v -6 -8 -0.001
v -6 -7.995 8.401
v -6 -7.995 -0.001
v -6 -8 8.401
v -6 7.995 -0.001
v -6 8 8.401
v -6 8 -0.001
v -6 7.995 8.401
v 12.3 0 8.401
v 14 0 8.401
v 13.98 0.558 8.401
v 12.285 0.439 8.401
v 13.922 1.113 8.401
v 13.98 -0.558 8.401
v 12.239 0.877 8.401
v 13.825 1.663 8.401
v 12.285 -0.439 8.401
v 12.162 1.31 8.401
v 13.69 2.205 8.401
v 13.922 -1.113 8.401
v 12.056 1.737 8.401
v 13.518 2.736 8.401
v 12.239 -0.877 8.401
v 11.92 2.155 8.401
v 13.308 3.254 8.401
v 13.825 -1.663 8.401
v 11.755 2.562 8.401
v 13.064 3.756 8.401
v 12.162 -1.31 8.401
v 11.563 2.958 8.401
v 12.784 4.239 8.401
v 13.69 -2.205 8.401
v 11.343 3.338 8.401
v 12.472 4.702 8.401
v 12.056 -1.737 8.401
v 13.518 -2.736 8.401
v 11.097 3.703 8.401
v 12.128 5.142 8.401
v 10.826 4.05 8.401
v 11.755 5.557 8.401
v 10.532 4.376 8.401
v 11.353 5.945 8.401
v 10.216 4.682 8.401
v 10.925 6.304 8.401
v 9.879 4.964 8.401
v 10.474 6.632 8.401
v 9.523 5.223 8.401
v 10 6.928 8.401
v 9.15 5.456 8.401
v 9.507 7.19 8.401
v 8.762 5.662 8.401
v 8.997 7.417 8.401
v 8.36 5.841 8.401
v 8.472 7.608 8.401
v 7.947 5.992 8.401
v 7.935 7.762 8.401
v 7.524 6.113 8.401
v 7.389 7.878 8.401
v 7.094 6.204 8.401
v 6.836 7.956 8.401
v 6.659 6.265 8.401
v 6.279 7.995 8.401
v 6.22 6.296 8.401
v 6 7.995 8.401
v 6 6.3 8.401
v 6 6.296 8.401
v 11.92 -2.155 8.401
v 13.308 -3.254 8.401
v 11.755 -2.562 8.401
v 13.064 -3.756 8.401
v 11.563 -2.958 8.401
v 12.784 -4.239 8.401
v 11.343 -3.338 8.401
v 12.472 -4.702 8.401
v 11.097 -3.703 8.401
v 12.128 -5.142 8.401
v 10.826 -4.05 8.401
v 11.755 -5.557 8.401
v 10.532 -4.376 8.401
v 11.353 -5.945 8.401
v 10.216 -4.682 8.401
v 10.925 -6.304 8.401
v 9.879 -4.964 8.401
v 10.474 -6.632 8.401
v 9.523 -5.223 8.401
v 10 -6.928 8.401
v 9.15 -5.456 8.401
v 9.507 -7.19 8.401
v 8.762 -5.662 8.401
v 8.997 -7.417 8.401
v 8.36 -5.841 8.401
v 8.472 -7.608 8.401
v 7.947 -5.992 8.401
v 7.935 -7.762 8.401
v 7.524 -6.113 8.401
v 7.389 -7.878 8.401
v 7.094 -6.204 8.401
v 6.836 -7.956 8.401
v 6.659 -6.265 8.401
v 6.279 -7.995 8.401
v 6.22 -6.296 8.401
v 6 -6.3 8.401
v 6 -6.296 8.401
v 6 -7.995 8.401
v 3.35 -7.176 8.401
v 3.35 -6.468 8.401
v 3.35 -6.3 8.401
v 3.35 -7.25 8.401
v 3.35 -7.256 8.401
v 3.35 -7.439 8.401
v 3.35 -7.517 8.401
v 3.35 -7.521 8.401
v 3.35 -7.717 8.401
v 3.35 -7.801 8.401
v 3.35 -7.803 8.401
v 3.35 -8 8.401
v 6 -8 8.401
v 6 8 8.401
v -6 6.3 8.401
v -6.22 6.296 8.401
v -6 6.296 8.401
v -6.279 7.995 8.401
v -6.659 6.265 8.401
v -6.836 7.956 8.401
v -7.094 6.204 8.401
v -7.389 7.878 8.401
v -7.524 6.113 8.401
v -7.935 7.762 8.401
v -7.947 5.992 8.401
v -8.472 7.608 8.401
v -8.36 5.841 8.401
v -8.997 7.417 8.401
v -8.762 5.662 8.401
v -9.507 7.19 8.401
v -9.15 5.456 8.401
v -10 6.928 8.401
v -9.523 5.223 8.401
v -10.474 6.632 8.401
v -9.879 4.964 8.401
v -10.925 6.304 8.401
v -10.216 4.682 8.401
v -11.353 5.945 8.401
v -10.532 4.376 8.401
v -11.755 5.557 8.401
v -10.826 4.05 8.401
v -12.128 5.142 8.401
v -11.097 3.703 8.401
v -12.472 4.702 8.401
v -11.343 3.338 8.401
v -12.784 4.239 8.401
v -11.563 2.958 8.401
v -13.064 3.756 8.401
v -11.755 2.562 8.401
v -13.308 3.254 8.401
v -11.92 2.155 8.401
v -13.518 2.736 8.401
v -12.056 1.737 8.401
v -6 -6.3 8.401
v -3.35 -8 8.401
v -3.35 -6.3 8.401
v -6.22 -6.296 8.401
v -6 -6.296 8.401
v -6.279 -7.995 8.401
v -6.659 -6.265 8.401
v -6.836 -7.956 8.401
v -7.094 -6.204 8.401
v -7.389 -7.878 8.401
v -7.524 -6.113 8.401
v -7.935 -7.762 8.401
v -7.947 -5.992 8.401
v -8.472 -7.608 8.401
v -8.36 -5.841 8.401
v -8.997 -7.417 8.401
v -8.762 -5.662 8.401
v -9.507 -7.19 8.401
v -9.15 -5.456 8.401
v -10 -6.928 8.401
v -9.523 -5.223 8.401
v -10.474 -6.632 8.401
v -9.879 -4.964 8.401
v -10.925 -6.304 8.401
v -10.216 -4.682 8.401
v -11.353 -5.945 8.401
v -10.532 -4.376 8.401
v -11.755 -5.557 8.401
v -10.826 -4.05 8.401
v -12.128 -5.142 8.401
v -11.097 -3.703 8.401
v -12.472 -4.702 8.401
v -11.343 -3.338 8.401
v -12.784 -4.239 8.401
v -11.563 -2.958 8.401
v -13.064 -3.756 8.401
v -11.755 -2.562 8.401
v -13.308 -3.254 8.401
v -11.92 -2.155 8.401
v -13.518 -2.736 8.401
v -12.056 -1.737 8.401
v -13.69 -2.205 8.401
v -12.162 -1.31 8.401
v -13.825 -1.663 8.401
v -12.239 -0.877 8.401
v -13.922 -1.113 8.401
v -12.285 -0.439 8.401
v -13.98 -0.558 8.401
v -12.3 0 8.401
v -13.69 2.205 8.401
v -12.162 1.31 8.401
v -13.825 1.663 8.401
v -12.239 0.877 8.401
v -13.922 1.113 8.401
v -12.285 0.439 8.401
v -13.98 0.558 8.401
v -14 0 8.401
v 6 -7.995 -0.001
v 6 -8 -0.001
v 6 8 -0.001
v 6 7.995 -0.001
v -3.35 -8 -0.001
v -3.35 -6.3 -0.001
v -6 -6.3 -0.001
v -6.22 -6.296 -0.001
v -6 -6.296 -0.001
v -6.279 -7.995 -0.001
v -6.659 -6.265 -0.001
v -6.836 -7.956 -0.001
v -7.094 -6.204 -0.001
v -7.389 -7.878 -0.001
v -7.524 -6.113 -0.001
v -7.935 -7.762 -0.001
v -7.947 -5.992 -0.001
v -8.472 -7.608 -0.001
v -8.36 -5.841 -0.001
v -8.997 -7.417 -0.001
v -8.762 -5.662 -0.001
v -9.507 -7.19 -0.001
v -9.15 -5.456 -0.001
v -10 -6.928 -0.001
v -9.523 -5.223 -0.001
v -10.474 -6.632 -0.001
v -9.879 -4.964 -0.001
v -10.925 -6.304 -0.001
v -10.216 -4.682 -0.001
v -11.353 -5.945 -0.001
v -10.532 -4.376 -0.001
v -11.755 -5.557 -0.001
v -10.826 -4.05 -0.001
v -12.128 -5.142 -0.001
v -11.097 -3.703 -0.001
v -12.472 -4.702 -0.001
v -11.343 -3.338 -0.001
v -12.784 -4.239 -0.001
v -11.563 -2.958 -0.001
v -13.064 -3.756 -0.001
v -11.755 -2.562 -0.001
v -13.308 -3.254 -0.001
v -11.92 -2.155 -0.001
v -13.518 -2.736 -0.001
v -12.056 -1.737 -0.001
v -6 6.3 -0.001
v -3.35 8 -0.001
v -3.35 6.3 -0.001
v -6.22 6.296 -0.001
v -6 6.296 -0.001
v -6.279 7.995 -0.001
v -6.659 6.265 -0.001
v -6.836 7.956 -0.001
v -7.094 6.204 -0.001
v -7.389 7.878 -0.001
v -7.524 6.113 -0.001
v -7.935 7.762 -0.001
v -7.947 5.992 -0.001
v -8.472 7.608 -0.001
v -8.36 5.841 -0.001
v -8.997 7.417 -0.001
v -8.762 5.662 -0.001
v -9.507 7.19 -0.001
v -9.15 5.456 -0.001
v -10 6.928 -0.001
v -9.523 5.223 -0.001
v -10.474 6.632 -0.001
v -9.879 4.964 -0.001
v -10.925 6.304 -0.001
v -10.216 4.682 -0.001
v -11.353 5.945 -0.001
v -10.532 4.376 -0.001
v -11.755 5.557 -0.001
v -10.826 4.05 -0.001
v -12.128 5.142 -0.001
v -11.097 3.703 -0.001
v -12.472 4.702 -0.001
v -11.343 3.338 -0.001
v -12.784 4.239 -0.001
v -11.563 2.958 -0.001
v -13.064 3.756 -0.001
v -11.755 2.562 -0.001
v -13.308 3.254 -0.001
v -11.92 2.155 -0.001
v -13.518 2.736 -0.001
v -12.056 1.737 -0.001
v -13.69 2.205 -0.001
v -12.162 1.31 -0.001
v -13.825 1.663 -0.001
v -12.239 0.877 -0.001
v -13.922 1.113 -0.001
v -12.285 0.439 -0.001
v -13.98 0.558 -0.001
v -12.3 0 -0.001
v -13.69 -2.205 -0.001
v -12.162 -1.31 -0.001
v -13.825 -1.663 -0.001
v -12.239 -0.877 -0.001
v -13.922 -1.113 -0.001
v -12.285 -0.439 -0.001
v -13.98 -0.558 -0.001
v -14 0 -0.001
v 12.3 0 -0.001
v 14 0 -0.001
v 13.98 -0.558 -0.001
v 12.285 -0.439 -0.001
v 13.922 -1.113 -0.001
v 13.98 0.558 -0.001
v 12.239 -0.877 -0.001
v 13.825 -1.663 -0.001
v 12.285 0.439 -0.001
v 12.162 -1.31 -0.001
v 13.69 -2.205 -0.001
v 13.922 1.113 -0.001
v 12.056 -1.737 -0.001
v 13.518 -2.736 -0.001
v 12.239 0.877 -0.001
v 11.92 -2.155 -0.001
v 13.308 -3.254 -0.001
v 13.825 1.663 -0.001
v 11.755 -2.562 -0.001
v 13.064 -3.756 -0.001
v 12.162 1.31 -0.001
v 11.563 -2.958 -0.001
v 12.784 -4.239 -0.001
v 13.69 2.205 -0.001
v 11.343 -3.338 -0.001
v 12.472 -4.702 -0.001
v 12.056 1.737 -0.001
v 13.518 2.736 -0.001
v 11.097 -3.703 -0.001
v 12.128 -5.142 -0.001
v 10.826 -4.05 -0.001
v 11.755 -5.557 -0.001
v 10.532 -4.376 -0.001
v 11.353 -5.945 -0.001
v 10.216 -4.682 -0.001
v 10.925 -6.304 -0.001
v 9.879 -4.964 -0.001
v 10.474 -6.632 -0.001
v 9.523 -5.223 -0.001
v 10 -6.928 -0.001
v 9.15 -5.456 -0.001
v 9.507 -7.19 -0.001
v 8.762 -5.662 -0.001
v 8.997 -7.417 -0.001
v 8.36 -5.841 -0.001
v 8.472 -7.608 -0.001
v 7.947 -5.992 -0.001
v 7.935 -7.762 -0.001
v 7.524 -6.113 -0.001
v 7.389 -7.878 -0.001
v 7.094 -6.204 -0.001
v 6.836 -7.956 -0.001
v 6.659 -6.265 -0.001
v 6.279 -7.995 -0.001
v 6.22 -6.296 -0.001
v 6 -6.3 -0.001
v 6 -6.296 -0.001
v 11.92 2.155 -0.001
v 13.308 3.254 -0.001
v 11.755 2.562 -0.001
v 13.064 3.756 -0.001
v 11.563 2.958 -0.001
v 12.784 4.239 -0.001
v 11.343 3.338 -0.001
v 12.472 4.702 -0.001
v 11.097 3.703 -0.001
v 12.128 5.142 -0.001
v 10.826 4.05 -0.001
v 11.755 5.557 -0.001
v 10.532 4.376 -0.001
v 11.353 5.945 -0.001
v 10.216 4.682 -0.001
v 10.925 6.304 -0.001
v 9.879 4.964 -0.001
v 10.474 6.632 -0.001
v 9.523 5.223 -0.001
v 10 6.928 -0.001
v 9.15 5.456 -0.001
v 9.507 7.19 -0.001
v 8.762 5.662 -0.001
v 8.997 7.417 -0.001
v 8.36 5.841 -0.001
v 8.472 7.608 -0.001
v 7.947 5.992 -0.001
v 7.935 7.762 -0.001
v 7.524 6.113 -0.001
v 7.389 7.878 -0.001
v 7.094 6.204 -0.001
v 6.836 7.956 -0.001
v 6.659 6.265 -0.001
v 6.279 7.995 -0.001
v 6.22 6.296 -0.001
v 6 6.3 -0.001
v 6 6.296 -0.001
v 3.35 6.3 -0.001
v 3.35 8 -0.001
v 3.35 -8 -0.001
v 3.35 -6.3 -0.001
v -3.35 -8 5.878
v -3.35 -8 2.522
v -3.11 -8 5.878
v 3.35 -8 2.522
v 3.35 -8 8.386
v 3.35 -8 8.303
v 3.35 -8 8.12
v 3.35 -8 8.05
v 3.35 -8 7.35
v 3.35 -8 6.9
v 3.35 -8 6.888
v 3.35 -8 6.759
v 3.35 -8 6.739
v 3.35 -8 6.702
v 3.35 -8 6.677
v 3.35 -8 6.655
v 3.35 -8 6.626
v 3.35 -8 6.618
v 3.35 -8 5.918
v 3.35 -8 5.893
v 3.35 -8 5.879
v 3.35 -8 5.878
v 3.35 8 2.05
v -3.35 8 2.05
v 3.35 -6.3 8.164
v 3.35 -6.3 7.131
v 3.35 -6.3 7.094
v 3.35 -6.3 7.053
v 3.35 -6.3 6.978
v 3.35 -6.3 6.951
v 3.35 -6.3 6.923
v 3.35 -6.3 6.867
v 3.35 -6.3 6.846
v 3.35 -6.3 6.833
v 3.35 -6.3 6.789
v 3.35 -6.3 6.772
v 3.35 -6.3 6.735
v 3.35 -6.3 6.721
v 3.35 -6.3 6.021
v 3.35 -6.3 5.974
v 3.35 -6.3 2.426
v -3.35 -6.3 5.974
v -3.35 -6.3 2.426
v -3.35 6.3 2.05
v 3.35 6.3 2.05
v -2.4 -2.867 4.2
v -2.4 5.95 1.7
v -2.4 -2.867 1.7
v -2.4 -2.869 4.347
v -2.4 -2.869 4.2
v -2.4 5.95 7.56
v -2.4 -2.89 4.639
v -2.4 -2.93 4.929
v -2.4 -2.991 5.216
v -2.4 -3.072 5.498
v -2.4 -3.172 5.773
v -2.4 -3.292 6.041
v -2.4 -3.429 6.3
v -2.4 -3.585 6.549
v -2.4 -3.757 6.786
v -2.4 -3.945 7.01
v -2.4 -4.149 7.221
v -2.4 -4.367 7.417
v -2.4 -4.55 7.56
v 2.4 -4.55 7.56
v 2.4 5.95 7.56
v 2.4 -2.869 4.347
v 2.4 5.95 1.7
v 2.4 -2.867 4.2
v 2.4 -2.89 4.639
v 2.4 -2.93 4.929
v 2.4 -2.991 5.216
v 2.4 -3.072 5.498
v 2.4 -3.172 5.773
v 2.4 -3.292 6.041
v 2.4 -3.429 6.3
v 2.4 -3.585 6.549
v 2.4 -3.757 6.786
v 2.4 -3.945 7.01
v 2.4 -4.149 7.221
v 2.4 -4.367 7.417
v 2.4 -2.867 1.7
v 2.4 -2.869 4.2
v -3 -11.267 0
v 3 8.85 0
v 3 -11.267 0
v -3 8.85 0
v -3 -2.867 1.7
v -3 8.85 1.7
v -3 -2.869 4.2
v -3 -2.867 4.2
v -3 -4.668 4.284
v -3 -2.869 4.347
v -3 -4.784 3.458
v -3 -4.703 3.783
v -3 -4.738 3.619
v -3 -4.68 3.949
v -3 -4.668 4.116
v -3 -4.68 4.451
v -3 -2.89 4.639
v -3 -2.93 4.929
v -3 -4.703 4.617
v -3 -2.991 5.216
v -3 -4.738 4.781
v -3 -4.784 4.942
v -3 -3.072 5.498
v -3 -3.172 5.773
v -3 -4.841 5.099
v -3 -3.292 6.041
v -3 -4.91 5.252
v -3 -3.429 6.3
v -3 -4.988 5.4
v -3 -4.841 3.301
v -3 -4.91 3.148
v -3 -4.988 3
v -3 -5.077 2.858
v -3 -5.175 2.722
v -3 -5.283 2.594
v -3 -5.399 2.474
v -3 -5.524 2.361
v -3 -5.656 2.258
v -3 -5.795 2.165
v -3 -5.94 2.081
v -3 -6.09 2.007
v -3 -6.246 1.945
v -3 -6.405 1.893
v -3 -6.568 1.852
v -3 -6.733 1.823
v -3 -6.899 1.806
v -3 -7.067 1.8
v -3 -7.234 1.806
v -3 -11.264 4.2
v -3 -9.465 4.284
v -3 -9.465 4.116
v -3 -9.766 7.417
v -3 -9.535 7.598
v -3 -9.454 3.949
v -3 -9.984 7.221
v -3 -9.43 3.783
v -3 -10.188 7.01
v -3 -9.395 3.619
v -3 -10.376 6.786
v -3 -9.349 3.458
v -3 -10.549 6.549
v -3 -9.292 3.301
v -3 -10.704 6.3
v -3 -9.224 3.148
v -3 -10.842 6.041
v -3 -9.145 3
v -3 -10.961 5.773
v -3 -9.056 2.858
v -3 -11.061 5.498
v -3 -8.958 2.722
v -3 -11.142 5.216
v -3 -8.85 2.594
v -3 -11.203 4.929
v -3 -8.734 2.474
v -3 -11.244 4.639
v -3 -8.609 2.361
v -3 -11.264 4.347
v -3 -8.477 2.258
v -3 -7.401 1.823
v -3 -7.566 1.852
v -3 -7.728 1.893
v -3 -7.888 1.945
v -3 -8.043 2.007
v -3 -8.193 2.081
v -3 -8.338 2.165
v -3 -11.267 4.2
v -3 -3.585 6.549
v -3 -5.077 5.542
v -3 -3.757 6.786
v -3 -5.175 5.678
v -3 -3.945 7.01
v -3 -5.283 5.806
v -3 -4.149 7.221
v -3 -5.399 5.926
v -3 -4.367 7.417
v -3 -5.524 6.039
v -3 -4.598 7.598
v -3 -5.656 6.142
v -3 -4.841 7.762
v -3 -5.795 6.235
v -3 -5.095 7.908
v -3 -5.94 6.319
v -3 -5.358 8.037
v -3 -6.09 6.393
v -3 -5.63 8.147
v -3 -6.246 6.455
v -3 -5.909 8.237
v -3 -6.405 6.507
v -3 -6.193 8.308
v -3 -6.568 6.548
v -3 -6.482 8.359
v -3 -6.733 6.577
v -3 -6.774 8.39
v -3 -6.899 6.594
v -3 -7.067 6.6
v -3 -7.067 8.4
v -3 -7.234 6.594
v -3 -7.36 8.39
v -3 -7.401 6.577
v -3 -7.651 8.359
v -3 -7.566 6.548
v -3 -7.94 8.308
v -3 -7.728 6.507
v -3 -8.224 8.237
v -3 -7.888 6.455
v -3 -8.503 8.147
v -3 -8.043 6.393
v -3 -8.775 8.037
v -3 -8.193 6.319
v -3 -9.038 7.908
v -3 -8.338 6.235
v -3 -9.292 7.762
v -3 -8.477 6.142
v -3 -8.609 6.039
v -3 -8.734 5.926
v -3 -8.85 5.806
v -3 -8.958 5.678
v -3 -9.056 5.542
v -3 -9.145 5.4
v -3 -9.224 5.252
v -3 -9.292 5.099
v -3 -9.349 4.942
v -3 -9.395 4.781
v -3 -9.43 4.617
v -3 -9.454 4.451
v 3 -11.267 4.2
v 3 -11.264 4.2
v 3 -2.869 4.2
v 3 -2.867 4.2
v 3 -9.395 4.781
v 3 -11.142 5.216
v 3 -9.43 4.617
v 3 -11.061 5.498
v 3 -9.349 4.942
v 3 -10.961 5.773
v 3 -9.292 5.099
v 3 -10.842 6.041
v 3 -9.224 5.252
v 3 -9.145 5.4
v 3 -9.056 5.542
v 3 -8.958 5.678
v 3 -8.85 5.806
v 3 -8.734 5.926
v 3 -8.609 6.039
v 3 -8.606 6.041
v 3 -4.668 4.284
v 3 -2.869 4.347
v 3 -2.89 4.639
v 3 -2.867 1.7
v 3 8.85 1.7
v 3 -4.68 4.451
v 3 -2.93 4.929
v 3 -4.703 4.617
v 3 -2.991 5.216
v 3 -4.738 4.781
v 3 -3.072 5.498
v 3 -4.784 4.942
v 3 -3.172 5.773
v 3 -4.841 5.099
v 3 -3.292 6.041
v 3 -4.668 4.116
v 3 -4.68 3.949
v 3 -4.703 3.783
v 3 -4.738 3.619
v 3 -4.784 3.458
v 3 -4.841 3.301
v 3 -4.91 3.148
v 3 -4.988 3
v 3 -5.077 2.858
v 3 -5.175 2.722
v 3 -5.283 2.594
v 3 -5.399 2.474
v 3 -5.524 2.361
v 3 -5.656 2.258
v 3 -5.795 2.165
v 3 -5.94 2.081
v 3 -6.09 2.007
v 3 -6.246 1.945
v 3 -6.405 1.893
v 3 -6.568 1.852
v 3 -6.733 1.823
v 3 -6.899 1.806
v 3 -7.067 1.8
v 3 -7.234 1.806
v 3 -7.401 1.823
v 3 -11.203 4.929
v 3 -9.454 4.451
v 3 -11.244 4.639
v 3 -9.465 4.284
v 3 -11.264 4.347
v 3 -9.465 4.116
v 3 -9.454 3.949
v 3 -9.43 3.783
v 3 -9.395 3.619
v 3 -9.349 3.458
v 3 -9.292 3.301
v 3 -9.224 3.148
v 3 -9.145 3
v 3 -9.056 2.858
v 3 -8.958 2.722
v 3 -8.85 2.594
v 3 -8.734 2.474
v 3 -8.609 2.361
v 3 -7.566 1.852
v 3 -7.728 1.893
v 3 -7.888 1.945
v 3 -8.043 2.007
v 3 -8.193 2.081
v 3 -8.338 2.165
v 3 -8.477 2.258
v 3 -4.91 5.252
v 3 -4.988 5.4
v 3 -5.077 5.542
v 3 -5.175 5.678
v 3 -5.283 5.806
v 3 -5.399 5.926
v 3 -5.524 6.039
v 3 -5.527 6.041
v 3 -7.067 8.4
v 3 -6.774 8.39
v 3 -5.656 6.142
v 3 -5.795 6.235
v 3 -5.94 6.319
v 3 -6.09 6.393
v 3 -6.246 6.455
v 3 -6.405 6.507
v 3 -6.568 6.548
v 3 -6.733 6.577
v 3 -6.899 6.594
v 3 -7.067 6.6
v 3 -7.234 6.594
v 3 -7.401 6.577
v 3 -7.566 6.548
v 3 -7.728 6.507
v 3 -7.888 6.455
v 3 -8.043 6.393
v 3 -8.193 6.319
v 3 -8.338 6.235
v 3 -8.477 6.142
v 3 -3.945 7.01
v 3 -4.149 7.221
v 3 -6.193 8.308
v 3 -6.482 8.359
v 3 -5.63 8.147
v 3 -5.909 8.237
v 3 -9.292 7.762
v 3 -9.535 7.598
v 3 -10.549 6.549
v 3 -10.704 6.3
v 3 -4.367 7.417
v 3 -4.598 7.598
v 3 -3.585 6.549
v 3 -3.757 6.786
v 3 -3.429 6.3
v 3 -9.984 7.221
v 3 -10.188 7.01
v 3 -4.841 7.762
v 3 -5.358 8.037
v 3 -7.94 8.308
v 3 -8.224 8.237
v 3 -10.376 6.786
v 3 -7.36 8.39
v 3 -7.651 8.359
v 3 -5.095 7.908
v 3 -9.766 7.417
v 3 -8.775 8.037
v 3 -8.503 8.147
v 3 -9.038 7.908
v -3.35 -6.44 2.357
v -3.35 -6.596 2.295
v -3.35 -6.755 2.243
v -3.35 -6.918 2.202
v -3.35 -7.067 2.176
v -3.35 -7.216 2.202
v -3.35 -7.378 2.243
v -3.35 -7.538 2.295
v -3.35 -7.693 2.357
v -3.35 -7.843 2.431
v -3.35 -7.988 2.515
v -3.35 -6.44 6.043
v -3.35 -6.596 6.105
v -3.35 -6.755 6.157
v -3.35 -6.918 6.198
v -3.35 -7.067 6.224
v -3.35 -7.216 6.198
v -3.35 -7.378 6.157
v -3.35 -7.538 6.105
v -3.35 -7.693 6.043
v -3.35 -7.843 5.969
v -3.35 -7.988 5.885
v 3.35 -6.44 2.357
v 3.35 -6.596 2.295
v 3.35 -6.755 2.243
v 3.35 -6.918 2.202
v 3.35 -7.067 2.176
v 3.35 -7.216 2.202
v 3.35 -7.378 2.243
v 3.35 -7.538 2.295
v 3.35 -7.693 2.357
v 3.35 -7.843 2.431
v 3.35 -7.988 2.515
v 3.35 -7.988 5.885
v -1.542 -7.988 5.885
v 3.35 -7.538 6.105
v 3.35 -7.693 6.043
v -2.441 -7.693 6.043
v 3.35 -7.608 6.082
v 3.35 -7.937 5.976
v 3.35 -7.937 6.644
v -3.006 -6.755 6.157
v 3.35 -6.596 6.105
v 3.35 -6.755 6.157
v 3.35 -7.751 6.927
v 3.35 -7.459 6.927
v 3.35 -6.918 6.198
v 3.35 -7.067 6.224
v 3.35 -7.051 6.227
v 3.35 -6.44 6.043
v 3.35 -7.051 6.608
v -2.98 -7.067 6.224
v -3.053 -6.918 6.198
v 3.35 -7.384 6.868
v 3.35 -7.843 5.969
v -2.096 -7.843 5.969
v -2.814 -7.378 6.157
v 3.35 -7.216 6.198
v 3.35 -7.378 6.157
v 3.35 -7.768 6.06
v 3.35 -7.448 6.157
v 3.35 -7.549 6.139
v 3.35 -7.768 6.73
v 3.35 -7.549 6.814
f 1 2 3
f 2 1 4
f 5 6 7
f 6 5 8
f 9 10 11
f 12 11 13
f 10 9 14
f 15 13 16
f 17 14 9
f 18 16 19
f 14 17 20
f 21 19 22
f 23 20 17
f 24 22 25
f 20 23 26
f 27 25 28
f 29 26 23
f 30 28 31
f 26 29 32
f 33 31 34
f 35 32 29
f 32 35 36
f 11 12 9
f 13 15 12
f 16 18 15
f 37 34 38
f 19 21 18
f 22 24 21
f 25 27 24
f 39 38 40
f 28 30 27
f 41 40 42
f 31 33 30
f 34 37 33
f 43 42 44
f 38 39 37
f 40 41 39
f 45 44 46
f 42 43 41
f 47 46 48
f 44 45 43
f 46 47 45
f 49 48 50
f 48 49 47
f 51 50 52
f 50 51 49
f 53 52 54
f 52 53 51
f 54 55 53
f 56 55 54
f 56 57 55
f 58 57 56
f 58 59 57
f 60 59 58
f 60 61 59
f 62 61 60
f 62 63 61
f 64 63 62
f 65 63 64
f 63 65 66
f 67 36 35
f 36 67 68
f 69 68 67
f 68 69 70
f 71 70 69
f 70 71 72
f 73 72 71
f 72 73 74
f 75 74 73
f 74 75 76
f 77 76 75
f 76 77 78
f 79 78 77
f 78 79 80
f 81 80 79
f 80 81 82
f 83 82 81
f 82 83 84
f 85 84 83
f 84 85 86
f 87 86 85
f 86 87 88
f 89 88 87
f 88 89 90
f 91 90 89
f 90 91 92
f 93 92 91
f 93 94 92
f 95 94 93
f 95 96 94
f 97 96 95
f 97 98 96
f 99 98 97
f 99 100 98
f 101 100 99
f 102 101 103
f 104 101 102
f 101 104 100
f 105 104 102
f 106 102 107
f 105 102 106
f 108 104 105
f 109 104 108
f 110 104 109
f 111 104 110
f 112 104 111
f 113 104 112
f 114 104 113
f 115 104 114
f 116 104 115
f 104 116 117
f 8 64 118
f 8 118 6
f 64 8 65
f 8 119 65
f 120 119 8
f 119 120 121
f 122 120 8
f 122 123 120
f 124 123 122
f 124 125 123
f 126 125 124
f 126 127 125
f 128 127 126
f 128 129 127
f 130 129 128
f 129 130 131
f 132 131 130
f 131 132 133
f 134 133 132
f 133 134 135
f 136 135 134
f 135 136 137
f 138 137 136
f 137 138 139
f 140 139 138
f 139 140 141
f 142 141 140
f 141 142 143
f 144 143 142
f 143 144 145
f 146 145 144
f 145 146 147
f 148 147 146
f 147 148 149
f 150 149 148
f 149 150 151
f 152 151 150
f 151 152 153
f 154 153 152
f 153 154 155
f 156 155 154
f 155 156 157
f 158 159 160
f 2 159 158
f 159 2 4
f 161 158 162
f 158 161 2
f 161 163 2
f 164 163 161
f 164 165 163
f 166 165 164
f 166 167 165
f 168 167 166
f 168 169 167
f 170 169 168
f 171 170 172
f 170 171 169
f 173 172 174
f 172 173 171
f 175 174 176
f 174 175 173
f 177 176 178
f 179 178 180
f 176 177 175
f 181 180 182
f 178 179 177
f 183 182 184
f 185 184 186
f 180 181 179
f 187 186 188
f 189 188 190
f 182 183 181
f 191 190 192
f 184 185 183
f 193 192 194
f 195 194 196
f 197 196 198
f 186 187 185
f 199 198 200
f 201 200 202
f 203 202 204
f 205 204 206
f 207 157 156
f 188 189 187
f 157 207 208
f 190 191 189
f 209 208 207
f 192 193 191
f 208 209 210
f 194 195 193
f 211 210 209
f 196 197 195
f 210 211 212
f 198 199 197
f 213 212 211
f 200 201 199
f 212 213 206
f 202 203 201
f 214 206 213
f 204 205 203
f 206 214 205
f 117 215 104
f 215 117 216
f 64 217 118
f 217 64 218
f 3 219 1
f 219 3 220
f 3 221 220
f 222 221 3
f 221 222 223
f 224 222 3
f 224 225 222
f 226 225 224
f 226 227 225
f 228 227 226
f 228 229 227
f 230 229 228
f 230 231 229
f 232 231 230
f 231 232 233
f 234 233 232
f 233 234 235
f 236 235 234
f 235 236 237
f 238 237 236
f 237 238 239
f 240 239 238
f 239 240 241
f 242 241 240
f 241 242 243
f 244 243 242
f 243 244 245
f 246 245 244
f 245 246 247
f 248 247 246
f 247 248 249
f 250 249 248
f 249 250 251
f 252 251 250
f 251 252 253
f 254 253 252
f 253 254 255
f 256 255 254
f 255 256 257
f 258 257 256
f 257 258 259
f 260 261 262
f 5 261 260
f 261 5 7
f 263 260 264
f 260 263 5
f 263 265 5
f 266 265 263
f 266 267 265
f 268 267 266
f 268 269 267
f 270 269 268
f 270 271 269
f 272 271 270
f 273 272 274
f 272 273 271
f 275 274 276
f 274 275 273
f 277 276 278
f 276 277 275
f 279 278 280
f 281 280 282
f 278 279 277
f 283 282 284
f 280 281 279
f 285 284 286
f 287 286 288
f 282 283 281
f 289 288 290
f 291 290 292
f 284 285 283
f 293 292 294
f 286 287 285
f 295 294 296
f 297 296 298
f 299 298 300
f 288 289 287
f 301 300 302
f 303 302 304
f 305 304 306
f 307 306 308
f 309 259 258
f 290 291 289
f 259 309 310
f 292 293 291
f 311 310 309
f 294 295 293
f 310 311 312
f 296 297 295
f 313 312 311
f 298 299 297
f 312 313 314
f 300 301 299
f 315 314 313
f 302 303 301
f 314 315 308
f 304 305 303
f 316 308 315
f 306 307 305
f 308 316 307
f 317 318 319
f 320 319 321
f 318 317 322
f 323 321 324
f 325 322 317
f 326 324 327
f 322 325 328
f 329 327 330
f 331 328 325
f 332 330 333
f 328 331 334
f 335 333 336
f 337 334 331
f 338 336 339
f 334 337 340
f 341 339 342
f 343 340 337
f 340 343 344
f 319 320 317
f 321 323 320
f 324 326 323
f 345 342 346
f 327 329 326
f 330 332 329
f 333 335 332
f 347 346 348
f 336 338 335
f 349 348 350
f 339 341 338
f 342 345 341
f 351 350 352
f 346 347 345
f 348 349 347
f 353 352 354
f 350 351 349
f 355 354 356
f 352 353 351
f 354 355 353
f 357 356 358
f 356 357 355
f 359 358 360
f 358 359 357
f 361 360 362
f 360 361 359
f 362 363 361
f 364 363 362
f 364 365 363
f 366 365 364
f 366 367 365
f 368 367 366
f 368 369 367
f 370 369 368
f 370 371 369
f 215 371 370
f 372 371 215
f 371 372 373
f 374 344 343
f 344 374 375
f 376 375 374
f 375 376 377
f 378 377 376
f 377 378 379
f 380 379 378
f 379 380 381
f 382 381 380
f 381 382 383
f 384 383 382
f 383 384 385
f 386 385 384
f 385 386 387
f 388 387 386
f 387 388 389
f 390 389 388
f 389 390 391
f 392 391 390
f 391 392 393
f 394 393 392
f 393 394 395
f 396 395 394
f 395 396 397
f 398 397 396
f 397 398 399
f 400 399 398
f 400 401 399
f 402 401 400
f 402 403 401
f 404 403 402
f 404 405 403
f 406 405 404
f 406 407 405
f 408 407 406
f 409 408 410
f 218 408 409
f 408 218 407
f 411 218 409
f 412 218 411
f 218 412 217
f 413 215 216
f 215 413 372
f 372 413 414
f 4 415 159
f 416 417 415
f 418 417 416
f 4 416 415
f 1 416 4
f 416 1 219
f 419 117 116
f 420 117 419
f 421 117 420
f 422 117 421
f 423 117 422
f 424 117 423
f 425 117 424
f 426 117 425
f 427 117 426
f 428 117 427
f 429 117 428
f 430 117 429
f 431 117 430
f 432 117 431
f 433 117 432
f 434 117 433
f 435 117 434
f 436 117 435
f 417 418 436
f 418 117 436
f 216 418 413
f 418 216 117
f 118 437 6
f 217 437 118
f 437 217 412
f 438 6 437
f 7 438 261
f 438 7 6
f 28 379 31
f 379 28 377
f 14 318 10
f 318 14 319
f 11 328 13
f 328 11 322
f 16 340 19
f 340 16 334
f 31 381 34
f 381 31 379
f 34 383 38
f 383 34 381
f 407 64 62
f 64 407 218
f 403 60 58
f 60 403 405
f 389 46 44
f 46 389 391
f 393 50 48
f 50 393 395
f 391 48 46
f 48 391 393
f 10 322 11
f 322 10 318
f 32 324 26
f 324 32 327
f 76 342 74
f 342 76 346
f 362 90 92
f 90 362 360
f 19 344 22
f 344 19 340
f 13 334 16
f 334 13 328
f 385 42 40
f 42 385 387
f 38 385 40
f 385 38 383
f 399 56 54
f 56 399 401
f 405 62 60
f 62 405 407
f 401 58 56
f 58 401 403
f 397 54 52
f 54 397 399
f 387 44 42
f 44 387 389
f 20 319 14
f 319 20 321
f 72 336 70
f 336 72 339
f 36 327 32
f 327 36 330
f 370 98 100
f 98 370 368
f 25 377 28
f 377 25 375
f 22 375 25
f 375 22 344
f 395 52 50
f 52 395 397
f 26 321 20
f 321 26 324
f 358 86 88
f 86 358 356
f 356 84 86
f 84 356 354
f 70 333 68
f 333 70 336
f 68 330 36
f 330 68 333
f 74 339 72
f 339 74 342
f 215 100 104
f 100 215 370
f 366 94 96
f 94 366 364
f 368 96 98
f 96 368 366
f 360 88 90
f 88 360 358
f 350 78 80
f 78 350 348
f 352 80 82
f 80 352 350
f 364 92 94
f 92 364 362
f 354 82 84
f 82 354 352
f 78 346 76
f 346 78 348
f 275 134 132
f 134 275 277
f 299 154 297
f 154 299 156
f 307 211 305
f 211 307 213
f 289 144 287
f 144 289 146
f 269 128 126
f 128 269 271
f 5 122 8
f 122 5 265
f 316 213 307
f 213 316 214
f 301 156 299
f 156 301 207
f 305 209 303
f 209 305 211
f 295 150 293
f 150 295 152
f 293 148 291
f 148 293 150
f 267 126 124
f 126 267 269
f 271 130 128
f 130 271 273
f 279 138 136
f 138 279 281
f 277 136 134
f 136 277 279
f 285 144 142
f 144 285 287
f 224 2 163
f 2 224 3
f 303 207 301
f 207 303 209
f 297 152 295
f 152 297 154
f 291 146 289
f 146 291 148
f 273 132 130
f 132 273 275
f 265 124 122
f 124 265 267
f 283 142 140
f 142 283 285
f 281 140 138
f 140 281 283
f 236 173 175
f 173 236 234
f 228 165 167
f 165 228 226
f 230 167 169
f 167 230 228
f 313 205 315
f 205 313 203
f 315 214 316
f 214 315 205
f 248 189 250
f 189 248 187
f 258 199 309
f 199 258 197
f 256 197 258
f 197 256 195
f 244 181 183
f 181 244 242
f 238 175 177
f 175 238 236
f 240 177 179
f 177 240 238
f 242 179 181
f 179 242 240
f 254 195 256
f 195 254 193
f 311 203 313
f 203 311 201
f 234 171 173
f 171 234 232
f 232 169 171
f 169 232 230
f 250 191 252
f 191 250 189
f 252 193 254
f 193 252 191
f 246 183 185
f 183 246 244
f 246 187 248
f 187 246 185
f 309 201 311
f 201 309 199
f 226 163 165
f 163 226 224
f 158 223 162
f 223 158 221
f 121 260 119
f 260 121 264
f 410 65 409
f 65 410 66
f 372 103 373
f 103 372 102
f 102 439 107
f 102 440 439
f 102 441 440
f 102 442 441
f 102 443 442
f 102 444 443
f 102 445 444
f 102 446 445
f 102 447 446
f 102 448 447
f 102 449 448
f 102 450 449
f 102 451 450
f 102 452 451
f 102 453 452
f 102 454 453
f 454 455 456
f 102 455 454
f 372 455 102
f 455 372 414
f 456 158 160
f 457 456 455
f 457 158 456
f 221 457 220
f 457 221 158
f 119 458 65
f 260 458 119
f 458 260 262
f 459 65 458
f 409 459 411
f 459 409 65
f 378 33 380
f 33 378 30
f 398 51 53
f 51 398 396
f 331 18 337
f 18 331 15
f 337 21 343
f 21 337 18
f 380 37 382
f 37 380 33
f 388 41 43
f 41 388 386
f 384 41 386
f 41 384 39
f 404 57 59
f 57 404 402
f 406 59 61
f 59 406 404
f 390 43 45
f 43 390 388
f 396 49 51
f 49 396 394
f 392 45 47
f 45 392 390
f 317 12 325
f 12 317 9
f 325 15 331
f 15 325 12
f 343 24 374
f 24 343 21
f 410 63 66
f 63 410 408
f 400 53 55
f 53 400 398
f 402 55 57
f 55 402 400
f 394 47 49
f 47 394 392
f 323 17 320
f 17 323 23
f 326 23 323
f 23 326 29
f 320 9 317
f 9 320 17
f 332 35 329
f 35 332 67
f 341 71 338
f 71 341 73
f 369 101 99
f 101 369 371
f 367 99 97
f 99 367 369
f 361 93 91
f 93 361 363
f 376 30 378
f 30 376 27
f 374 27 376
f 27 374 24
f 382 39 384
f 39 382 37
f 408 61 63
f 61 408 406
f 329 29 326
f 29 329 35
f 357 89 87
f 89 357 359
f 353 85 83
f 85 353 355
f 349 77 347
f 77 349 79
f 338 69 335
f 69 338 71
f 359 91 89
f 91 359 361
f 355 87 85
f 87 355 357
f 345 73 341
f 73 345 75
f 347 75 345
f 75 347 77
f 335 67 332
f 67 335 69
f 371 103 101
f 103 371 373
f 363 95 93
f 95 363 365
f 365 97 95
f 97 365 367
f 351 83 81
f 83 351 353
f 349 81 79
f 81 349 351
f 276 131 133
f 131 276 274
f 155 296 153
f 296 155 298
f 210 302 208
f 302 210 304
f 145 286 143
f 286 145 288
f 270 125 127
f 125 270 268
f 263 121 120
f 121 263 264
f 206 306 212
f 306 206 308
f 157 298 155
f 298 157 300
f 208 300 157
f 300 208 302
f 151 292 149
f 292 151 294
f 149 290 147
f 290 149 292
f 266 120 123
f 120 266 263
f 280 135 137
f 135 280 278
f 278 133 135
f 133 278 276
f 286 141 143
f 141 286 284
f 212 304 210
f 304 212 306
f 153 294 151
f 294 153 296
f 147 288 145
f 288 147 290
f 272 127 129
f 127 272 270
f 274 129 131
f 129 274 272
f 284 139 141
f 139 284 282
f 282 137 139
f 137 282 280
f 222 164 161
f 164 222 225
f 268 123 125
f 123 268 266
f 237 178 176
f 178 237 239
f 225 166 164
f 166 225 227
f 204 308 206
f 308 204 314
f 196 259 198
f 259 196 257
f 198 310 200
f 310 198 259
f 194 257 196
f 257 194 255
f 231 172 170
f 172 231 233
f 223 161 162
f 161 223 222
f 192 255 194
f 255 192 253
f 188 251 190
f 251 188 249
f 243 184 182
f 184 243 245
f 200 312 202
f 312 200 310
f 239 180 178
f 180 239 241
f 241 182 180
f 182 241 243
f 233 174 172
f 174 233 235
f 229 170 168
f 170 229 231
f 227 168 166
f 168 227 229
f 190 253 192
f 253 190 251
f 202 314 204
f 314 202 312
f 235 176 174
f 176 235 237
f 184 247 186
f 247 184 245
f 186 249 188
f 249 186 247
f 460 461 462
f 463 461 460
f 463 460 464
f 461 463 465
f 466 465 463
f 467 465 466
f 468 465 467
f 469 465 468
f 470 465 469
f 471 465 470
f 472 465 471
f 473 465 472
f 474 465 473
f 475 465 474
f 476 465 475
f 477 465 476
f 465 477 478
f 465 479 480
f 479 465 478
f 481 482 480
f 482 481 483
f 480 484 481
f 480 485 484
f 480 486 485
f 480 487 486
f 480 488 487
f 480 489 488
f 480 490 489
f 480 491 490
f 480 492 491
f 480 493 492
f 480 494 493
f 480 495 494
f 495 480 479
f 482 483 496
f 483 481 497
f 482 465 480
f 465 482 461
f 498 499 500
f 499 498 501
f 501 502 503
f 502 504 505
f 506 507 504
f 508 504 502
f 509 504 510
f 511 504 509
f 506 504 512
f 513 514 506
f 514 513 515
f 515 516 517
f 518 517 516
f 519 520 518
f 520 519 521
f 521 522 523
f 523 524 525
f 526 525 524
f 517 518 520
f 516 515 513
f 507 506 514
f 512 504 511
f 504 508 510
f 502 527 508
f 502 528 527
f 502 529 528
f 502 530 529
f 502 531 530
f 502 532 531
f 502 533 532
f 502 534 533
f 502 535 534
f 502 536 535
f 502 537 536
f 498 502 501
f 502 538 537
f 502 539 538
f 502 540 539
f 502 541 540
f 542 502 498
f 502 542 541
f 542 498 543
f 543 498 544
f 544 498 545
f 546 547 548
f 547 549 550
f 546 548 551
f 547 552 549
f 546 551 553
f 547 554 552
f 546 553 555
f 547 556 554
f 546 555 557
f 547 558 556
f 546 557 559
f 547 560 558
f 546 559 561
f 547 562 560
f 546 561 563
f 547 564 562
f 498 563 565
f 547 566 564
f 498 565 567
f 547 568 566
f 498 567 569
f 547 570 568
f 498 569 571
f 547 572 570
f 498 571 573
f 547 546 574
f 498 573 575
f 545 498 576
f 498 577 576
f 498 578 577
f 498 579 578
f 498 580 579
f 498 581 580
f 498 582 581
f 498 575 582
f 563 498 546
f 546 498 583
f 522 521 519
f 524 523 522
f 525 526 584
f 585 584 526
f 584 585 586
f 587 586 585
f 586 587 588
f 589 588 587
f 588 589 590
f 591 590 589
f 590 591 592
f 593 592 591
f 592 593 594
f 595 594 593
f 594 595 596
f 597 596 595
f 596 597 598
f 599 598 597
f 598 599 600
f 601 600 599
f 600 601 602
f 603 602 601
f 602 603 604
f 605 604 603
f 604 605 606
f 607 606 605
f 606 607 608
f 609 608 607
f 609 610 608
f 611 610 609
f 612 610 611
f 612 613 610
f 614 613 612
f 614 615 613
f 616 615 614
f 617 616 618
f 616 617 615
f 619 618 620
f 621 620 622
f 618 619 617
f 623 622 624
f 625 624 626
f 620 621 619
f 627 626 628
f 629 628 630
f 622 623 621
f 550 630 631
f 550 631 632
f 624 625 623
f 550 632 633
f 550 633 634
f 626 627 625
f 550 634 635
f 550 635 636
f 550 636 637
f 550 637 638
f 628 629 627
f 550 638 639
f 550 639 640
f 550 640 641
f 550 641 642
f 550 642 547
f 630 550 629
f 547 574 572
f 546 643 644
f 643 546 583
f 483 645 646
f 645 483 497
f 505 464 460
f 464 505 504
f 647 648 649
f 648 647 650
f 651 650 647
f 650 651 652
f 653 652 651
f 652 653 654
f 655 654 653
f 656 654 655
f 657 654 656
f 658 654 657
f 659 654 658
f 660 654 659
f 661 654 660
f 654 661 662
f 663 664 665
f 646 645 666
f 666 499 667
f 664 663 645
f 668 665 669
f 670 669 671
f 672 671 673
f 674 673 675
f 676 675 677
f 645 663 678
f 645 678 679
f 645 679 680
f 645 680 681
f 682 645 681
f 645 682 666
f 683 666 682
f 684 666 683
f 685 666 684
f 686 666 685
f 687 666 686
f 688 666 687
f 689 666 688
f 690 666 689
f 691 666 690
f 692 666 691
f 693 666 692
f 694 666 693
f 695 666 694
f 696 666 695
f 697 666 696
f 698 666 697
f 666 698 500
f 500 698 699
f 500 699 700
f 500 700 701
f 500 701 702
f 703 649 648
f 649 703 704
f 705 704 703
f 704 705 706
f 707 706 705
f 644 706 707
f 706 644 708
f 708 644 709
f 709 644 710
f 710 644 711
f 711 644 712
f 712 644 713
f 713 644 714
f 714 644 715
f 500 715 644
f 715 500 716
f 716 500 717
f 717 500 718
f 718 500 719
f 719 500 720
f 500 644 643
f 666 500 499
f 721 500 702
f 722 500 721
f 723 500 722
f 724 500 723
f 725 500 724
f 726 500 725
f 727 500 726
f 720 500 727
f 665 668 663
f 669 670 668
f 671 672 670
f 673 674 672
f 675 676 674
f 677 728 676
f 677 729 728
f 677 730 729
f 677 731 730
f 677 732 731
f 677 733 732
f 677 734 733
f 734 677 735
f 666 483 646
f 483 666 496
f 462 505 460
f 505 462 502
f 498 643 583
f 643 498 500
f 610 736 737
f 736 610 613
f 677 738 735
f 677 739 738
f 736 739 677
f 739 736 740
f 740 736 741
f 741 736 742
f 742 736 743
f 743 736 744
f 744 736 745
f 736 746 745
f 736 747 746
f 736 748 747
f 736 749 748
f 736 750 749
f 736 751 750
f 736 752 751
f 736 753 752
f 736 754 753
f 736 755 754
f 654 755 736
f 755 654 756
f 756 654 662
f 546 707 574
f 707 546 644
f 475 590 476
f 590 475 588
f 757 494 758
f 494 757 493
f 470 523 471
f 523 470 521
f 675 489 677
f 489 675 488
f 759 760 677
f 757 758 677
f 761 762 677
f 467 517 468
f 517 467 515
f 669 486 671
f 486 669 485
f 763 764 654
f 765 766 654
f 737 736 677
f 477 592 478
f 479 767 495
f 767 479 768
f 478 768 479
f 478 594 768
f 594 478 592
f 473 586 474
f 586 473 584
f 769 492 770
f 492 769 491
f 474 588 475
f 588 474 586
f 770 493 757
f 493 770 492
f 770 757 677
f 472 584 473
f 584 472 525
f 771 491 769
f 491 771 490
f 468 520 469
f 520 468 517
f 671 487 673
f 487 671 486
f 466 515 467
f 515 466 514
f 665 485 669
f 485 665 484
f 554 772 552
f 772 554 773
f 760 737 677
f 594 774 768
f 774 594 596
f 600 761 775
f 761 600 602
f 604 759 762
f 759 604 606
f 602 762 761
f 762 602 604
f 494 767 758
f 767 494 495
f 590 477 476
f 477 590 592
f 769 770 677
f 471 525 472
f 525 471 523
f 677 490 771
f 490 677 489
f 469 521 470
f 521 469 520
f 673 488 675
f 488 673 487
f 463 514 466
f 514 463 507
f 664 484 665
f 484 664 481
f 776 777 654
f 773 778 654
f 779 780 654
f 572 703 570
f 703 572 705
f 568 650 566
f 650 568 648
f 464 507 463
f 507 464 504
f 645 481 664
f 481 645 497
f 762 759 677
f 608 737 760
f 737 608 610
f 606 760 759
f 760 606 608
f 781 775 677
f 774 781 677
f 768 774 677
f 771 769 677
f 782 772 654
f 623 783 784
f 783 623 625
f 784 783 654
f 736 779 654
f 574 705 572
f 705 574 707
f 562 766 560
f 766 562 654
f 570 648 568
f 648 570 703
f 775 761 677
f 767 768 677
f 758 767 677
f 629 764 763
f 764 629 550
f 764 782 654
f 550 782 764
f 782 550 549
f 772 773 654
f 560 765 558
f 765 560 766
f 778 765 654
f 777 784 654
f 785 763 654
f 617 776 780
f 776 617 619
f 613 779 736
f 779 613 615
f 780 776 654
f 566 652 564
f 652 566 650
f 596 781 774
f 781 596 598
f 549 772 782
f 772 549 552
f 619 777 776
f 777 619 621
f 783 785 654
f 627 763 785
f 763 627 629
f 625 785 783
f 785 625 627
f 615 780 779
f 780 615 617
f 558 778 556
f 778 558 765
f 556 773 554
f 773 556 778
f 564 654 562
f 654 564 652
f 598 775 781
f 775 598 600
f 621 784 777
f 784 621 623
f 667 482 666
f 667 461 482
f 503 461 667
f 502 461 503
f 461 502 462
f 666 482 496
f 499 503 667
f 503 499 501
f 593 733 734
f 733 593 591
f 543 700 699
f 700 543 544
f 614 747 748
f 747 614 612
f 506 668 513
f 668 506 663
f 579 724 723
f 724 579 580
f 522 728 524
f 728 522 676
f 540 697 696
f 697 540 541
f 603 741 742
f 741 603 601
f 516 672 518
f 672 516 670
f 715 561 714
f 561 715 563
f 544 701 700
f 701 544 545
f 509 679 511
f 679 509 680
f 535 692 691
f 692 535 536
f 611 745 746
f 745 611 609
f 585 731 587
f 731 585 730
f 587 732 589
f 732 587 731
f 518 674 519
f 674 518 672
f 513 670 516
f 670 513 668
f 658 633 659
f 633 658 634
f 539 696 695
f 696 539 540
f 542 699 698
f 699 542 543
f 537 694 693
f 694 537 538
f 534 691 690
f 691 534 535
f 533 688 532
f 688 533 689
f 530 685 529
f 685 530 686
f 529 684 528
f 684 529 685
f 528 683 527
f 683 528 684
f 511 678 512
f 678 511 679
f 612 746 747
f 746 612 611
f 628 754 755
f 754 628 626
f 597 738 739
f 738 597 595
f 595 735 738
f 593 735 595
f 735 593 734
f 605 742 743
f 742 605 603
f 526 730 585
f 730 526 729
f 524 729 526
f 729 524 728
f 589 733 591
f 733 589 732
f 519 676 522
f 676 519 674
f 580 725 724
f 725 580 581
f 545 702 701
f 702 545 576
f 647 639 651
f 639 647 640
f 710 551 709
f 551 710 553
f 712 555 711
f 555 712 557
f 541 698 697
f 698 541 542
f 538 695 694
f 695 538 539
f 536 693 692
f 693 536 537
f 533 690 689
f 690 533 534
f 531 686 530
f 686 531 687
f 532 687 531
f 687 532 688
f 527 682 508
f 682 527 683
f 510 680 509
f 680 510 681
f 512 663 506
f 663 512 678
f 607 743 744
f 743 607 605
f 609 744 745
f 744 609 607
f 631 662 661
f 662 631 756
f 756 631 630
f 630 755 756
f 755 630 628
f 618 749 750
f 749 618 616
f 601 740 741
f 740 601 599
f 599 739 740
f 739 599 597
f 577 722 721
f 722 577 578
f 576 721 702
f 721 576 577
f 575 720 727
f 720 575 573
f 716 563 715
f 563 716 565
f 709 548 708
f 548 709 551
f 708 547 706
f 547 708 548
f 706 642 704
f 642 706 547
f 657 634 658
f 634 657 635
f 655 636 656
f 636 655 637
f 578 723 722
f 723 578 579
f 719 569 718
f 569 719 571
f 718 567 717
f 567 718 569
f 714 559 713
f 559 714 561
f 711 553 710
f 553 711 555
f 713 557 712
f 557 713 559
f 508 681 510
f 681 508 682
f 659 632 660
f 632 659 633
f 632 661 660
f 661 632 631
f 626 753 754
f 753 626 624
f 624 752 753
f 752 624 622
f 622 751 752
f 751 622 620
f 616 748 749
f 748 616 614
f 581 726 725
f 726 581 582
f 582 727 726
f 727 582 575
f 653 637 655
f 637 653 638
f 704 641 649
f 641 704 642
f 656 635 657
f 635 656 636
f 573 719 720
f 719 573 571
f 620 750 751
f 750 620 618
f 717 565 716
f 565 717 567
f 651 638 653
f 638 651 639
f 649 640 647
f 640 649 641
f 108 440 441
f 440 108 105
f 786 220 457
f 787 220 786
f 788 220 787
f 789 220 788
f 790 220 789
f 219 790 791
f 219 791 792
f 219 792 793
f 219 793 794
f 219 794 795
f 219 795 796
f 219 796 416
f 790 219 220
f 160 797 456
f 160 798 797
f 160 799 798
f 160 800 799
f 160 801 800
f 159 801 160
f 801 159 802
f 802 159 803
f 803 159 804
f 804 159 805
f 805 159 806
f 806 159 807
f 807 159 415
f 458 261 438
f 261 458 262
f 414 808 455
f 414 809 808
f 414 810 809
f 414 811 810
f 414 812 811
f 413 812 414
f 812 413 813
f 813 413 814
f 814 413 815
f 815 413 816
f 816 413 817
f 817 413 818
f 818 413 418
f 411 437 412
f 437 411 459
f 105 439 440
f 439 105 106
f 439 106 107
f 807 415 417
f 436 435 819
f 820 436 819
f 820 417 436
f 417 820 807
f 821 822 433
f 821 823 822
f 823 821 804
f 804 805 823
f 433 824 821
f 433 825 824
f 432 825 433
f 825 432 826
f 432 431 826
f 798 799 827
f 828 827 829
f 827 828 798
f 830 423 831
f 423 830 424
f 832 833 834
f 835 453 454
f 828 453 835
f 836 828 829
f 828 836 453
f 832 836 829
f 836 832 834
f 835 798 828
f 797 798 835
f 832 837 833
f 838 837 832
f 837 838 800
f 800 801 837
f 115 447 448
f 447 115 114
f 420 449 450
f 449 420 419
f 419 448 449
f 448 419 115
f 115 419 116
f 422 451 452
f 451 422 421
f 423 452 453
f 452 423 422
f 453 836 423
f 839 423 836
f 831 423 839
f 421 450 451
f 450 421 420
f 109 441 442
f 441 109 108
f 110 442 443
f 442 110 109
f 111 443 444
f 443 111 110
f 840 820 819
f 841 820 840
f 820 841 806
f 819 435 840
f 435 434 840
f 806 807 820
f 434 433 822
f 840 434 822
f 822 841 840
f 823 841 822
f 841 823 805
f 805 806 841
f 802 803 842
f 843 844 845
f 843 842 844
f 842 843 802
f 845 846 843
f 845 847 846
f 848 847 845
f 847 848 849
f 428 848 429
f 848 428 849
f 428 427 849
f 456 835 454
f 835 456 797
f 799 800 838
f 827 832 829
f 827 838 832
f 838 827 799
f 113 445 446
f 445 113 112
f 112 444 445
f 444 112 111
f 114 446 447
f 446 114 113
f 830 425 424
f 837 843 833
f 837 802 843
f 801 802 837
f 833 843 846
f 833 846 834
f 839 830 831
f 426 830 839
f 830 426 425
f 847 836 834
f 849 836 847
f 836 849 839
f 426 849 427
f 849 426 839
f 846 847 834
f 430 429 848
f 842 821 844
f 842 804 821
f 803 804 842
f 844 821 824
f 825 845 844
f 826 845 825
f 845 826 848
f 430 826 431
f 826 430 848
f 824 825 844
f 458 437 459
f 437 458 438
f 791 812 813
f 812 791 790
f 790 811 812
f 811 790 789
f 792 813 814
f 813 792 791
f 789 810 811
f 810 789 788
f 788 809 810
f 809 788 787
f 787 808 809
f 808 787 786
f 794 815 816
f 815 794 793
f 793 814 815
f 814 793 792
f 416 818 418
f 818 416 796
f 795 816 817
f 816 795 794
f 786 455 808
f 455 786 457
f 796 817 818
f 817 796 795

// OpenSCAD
// Object sizes
WALL_THICKNESS = 1.7; // 1.7
HEIGHT = 8.4;
DEPTH = 16; // 24 17
WIDTH = 28; // 48 32
FLAP_WIDTH = 6; // 9 7.1
PLAY = 0.7;

// Rendering
DRAFT = false; // false: final rendering, true: disable Minkowski
ATOM = 0.001;
$fn = 90;

// Derived values
HINGE_RADIUS = HEIGHT/2;
SPACE = PLAY/2;

module rounded(offset, h) {
    cube([WIDTH-DEPTH-offset*0, DEPTH-offset*2, h+ATOM*2], true);

    translate([WIDTH/2-DEPTH/2, 0, 0])
    cylinder(d=DEPTH-offset*2, h=h+ATOM*2, center=true);

    translate([-WIDTH/2+DEPTH/2, 0, 0])
    cylinder(d=DEPTH-offset*2, h=h+ATOM*2, center=true);
}

module box(h) {
    translate([0, 0, HEIGHT/2])
    difference() {
        rounded(0, h);
        rounded(WALL_THICKNESS, h+ATOM*2);
    }
}

module flap() {
     width = FLAP_WIDTH;
     width2 = FLAP_WIDTH * .8;
	difference() {
		union() {
			translate([-width/2, -DEPTH/2 +WALL_THICKNESS/2, 0])
			cube([width, DEPTH, WALL_THICKNESS]);
			if (0) {
				translate([-width/2, -DEPTH/2 -WALL_THICKNESS, 0])
				cube([width, DEPTH - SPACE, HEIGHT]);

				translate([-width/2, -DEPTH/2 + HINGE_RADIUS/4.5-HINGE_RADIUS, 0])
				cube([width, HINGE_RADIUS*2, HEIGHT]);
			} else {
				translate([-width2/2, -DEPTH/2 + WALL_THICKNESS*.5, 0])
				cube([width2, DEPTH -WALL_THICKNESS*1.5 - SPACE, HEIGHT*.9]);

				translate([-width/2, -DEPTH/2 + HINGE_RADIUS/4.5-HINGE_RADIUS, 0])
				cube([width, HINGE_RADIUS*2, HINGE_RADIUS]);

				translate([-width/2, -DEPTH/2 +  HINGE_RADIUS/4.5, HINGE_RADIUS])
				rotate([0, 90, 0])
				cylinder(r=HINGE_RADIUS, h=width);
			}
		}

		translate([-width/2-1, -DEPTH/2 + HINGE_RADIUS/4.5, HINGE_RADIUS])
		rotate([0, 90, 0])
		cylinder(r=HINGE_RADIUS/1.75, h=width+2);

	}
}

module grow() {
	if (DRAFT) {
		children();
	} else {
		minkowski() {
			children();
			cube([PLAY, PLAY, PLAY], true);
		}
	}
}

module unit() {
	difference() {
		box(HEIGHT);
		grow()
		flap();
	}
	flap();
}


unit();
//flap();
